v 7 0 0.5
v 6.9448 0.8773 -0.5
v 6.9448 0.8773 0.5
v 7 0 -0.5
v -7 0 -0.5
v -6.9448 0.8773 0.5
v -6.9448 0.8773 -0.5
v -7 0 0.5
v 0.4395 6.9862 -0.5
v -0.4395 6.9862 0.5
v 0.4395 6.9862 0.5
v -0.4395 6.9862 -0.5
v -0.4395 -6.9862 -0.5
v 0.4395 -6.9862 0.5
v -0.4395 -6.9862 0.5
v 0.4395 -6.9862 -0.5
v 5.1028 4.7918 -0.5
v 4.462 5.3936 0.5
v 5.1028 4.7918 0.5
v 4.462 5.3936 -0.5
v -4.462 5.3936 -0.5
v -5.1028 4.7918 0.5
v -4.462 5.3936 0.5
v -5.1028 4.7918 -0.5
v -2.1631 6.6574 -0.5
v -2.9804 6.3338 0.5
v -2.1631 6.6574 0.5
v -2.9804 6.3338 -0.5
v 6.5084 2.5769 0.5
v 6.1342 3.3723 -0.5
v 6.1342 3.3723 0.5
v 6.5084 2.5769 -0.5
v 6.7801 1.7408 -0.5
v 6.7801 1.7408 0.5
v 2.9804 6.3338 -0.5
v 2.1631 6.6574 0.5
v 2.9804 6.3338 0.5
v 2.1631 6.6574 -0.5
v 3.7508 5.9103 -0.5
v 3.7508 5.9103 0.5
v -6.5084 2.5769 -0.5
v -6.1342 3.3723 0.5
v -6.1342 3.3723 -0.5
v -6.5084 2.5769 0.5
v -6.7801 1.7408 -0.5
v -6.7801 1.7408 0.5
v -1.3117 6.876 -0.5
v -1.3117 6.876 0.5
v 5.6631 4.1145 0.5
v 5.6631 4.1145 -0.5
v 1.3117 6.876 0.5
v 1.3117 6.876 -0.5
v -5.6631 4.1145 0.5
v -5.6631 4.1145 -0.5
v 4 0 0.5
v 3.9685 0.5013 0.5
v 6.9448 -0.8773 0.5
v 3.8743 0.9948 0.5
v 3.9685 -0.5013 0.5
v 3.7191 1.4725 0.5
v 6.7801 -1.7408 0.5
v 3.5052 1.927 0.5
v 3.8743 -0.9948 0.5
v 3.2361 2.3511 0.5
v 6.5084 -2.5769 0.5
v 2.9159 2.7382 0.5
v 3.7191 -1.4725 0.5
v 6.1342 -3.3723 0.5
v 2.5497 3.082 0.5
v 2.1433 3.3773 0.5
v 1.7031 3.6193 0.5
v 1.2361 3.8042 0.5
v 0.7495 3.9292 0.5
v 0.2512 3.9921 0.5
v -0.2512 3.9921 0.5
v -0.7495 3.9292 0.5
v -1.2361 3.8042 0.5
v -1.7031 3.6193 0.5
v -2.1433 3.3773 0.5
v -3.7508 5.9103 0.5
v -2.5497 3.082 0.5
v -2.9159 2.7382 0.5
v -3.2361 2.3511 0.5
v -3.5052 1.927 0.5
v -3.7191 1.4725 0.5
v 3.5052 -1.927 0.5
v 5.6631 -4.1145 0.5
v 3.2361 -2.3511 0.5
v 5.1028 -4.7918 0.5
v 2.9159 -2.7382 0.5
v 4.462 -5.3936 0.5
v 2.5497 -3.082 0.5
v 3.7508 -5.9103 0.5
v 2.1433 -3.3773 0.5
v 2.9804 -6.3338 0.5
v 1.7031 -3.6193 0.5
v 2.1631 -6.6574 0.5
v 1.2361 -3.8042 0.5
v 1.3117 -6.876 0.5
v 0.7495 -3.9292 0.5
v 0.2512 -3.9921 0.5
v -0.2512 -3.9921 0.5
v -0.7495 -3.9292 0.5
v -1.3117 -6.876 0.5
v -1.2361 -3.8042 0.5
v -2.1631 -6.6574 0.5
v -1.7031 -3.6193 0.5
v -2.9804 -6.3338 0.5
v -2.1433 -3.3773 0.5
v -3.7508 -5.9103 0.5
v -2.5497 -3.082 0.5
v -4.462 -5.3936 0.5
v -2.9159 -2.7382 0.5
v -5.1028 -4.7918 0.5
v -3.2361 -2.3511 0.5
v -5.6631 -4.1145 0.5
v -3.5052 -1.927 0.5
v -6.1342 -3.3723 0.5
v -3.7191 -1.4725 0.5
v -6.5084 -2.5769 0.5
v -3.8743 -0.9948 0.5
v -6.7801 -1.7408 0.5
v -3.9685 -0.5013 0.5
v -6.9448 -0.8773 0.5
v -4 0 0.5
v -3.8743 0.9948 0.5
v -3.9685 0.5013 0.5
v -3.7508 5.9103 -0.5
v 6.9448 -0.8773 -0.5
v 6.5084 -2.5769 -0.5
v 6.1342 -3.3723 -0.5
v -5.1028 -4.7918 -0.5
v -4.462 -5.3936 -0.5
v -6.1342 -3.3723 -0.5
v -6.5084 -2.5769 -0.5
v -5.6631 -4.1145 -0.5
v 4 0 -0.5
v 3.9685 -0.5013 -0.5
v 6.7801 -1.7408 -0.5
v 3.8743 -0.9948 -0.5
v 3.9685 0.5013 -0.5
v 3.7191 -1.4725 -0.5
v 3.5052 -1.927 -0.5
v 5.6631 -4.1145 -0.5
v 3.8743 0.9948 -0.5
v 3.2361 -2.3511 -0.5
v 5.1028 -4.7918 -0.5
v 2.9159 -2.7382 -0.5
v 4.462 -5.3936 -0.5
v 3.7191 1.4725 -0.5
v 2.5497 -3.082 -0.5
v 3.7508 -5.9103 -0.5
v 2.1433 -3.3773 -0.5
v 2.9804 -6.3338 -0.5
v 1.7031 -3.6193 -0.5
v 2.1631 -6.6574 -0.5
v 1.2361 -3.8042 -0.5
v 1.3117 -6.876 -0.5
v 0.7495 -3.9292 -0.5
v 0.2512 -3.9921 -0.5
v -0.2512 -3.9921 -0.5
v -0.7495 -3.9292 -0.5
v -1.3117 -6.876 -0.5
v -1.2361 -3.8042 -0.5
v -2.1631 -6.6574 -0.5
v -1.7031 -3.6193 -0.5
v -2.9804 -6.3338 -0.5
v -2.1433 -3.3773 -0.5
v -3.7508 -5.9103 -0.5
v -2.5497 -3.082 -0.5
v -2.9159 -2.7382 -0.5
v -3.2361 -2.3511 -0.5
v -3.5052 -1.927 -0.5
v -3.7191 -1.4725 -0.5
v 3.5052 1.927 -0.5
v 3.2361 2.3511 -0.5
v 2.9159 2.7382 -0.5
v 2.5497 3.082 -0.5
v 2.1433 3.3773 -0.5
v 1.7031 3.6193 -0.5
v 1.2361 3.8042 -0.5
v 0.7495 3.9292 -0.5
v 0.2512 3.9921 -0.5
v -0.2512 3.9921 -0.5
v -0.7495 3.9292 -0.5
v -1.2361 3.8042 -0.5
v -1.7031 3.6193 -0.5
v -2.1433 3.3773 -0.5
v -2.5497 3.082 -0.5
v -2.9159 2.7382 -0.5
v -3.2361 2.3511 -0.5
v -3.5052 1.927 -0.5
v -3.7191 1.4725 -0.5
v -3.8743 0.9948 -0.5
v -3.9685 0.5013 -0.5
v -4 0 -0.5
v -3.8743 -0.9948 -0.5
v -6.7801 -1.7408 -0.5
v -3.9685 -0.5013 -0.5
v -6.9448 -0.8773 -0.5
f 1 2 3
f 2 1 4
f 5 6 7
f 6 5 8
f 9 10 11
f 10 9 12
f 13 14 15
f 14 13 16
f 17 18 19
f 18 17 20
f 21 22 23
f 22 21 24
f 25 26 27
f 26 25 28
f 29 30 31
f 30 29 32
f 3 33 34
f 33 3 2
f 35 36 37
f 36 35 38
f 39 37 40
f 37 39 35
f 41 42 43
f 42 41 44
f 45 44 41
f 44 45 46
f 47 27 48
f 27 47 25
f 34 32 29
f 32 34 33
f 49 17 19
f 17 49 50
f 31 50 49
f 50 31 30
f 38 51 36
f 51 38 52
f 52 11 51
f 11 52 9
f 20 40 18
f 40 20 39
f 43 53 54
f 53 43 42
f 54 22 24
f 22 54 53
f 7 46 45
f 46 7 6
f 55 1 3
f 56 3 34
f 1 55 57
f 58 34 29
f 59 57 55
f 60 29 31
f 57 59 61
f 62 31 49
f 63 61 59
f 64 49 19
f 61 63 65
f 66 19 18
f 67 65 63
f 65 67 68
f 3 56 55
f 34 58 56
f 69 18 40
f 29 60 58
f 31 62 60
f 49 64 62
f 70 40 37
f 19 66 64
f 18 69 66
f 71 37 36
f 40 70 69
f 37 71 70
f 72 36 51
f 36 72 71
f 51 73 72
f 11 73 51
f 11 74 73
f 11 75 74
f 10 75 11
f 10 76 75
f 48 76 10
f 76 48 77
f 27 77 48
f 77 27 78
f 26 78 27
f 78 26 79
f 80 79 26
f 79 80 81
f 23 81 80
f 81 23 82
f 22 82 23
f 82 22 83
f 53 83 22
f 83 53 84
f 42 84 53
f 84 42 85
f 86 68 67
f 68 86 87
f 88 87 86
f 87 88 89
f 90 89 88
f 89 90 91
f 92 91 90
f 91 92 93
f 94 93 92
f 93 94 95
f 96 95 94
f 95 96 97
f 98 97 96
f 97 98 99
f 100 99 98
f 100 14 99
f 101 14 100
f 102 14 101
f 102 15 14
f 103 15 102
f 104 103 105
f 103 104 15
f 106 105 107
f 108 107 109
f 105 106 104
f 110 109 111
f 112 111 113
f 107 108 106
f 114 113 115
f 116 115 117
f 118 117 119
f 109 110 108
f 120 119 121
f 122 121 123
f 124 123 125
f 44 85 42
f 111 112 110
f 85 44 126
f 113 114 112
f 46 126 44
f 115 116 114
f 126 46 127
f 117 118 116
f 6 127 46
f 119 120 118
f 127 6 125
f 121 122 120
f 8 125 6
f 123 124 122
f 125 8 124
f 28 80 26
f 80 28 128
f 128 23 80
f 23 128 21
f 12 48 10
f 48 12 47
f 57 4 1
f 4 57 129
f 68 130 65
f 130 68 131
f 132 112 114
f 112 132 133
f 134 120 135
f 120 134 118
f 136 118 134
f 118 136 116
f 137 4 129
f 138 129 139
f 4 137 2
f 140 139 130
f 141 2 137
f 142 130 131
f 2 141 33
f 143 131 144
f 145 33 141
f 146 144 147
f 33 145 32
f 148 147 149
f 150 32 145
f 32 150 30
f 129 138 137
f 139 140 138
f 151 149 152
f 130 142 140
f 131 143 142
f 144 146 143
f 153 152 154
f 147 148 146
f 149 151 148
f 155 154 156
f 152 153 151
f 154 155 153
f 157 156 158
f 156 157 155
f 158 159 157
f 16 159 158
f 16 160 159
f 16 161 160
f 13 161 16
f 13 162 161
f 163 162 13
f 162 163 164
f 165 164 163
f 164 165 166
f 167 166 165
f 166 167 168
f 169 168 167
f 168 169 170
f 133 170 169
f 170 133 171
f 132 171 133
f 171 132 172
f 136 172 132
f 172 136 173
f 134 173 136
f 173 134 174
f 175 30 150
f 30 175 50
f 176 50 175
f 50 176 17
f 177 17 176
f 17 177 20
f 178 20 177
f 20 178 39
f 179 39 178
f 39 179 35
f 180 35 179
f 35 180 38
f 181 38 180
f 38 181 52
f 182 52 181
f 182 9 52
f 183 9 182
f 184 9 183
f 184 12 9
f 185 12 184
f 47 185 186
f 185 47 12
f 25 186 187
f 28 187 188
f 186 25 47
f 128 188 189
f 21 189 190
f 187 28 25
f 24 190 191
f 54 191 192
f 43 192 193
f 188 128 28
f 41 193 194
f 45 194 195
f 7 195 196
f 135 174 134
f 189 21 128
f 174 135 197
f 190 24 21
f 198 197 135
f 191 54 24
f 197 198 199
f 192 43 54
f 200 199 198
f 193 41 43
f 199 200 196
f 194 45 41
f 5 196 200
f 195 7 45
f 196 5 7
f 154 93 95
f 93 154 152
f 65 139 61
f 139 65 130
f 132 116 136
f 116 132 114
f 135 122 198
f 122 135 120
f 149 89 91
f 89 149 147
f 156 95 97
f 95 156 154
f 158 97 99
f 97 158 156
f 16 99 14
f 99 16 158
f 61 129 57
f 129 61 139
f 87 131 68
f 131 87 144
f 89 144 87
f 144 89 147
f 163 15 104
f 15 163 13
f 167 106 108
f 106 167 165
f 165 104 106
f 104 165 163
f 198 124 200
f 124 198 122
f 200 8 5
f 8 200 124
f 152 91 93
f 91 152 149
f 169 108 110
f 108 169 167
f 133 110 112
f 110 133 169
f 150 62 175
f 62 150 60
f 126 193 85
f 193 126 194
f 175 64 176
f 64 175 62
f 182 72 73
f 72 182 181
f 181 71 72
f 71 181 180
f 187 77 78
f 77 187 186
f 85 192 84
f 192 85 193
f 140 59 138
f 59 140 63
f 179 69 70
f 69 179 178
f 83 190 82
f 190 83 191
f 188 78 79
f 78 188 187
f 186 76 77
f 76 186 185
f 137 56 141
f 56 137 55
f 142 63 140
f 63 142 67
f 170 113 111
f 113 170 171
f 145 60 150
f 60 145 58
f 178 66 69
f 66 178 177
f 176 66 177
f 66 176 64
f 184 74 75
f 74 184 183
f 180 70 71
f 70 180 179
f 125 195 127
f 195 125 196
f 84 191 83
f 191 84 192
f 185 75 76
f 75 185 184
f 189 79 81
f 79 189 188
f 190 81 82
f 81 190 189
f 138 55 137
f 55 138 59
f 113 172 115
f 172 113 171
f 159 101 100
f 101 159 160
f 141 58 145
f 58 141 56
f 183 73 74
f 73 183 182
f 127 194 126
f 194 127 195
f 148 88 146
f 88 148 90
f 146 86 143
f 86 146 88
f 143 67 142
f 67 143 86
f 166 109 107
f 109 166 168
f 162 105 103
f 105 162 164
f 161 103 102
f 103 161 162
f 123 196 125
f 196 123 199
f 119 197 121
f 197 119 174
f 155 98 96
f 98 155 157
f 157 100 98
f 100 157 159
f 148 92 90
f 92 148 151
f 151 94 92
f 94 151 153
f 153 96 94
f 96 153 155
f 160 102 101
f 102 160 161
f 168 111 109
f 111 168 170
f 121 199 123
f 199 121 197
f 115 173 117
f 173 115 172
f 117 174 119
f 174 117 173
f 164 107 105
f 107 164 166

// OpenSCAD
$fn = 50;


difference() {
	union() {
		translate(v = [0, 0, -0.5000000000]) {
			cylinder(h = 1, r = 7.0000000000);
		}
	}
	union() {
		translate(v = [0, 0, -100.0000000000]) {
			cylinder(h = 200, r = 4);
		}
	}
}
